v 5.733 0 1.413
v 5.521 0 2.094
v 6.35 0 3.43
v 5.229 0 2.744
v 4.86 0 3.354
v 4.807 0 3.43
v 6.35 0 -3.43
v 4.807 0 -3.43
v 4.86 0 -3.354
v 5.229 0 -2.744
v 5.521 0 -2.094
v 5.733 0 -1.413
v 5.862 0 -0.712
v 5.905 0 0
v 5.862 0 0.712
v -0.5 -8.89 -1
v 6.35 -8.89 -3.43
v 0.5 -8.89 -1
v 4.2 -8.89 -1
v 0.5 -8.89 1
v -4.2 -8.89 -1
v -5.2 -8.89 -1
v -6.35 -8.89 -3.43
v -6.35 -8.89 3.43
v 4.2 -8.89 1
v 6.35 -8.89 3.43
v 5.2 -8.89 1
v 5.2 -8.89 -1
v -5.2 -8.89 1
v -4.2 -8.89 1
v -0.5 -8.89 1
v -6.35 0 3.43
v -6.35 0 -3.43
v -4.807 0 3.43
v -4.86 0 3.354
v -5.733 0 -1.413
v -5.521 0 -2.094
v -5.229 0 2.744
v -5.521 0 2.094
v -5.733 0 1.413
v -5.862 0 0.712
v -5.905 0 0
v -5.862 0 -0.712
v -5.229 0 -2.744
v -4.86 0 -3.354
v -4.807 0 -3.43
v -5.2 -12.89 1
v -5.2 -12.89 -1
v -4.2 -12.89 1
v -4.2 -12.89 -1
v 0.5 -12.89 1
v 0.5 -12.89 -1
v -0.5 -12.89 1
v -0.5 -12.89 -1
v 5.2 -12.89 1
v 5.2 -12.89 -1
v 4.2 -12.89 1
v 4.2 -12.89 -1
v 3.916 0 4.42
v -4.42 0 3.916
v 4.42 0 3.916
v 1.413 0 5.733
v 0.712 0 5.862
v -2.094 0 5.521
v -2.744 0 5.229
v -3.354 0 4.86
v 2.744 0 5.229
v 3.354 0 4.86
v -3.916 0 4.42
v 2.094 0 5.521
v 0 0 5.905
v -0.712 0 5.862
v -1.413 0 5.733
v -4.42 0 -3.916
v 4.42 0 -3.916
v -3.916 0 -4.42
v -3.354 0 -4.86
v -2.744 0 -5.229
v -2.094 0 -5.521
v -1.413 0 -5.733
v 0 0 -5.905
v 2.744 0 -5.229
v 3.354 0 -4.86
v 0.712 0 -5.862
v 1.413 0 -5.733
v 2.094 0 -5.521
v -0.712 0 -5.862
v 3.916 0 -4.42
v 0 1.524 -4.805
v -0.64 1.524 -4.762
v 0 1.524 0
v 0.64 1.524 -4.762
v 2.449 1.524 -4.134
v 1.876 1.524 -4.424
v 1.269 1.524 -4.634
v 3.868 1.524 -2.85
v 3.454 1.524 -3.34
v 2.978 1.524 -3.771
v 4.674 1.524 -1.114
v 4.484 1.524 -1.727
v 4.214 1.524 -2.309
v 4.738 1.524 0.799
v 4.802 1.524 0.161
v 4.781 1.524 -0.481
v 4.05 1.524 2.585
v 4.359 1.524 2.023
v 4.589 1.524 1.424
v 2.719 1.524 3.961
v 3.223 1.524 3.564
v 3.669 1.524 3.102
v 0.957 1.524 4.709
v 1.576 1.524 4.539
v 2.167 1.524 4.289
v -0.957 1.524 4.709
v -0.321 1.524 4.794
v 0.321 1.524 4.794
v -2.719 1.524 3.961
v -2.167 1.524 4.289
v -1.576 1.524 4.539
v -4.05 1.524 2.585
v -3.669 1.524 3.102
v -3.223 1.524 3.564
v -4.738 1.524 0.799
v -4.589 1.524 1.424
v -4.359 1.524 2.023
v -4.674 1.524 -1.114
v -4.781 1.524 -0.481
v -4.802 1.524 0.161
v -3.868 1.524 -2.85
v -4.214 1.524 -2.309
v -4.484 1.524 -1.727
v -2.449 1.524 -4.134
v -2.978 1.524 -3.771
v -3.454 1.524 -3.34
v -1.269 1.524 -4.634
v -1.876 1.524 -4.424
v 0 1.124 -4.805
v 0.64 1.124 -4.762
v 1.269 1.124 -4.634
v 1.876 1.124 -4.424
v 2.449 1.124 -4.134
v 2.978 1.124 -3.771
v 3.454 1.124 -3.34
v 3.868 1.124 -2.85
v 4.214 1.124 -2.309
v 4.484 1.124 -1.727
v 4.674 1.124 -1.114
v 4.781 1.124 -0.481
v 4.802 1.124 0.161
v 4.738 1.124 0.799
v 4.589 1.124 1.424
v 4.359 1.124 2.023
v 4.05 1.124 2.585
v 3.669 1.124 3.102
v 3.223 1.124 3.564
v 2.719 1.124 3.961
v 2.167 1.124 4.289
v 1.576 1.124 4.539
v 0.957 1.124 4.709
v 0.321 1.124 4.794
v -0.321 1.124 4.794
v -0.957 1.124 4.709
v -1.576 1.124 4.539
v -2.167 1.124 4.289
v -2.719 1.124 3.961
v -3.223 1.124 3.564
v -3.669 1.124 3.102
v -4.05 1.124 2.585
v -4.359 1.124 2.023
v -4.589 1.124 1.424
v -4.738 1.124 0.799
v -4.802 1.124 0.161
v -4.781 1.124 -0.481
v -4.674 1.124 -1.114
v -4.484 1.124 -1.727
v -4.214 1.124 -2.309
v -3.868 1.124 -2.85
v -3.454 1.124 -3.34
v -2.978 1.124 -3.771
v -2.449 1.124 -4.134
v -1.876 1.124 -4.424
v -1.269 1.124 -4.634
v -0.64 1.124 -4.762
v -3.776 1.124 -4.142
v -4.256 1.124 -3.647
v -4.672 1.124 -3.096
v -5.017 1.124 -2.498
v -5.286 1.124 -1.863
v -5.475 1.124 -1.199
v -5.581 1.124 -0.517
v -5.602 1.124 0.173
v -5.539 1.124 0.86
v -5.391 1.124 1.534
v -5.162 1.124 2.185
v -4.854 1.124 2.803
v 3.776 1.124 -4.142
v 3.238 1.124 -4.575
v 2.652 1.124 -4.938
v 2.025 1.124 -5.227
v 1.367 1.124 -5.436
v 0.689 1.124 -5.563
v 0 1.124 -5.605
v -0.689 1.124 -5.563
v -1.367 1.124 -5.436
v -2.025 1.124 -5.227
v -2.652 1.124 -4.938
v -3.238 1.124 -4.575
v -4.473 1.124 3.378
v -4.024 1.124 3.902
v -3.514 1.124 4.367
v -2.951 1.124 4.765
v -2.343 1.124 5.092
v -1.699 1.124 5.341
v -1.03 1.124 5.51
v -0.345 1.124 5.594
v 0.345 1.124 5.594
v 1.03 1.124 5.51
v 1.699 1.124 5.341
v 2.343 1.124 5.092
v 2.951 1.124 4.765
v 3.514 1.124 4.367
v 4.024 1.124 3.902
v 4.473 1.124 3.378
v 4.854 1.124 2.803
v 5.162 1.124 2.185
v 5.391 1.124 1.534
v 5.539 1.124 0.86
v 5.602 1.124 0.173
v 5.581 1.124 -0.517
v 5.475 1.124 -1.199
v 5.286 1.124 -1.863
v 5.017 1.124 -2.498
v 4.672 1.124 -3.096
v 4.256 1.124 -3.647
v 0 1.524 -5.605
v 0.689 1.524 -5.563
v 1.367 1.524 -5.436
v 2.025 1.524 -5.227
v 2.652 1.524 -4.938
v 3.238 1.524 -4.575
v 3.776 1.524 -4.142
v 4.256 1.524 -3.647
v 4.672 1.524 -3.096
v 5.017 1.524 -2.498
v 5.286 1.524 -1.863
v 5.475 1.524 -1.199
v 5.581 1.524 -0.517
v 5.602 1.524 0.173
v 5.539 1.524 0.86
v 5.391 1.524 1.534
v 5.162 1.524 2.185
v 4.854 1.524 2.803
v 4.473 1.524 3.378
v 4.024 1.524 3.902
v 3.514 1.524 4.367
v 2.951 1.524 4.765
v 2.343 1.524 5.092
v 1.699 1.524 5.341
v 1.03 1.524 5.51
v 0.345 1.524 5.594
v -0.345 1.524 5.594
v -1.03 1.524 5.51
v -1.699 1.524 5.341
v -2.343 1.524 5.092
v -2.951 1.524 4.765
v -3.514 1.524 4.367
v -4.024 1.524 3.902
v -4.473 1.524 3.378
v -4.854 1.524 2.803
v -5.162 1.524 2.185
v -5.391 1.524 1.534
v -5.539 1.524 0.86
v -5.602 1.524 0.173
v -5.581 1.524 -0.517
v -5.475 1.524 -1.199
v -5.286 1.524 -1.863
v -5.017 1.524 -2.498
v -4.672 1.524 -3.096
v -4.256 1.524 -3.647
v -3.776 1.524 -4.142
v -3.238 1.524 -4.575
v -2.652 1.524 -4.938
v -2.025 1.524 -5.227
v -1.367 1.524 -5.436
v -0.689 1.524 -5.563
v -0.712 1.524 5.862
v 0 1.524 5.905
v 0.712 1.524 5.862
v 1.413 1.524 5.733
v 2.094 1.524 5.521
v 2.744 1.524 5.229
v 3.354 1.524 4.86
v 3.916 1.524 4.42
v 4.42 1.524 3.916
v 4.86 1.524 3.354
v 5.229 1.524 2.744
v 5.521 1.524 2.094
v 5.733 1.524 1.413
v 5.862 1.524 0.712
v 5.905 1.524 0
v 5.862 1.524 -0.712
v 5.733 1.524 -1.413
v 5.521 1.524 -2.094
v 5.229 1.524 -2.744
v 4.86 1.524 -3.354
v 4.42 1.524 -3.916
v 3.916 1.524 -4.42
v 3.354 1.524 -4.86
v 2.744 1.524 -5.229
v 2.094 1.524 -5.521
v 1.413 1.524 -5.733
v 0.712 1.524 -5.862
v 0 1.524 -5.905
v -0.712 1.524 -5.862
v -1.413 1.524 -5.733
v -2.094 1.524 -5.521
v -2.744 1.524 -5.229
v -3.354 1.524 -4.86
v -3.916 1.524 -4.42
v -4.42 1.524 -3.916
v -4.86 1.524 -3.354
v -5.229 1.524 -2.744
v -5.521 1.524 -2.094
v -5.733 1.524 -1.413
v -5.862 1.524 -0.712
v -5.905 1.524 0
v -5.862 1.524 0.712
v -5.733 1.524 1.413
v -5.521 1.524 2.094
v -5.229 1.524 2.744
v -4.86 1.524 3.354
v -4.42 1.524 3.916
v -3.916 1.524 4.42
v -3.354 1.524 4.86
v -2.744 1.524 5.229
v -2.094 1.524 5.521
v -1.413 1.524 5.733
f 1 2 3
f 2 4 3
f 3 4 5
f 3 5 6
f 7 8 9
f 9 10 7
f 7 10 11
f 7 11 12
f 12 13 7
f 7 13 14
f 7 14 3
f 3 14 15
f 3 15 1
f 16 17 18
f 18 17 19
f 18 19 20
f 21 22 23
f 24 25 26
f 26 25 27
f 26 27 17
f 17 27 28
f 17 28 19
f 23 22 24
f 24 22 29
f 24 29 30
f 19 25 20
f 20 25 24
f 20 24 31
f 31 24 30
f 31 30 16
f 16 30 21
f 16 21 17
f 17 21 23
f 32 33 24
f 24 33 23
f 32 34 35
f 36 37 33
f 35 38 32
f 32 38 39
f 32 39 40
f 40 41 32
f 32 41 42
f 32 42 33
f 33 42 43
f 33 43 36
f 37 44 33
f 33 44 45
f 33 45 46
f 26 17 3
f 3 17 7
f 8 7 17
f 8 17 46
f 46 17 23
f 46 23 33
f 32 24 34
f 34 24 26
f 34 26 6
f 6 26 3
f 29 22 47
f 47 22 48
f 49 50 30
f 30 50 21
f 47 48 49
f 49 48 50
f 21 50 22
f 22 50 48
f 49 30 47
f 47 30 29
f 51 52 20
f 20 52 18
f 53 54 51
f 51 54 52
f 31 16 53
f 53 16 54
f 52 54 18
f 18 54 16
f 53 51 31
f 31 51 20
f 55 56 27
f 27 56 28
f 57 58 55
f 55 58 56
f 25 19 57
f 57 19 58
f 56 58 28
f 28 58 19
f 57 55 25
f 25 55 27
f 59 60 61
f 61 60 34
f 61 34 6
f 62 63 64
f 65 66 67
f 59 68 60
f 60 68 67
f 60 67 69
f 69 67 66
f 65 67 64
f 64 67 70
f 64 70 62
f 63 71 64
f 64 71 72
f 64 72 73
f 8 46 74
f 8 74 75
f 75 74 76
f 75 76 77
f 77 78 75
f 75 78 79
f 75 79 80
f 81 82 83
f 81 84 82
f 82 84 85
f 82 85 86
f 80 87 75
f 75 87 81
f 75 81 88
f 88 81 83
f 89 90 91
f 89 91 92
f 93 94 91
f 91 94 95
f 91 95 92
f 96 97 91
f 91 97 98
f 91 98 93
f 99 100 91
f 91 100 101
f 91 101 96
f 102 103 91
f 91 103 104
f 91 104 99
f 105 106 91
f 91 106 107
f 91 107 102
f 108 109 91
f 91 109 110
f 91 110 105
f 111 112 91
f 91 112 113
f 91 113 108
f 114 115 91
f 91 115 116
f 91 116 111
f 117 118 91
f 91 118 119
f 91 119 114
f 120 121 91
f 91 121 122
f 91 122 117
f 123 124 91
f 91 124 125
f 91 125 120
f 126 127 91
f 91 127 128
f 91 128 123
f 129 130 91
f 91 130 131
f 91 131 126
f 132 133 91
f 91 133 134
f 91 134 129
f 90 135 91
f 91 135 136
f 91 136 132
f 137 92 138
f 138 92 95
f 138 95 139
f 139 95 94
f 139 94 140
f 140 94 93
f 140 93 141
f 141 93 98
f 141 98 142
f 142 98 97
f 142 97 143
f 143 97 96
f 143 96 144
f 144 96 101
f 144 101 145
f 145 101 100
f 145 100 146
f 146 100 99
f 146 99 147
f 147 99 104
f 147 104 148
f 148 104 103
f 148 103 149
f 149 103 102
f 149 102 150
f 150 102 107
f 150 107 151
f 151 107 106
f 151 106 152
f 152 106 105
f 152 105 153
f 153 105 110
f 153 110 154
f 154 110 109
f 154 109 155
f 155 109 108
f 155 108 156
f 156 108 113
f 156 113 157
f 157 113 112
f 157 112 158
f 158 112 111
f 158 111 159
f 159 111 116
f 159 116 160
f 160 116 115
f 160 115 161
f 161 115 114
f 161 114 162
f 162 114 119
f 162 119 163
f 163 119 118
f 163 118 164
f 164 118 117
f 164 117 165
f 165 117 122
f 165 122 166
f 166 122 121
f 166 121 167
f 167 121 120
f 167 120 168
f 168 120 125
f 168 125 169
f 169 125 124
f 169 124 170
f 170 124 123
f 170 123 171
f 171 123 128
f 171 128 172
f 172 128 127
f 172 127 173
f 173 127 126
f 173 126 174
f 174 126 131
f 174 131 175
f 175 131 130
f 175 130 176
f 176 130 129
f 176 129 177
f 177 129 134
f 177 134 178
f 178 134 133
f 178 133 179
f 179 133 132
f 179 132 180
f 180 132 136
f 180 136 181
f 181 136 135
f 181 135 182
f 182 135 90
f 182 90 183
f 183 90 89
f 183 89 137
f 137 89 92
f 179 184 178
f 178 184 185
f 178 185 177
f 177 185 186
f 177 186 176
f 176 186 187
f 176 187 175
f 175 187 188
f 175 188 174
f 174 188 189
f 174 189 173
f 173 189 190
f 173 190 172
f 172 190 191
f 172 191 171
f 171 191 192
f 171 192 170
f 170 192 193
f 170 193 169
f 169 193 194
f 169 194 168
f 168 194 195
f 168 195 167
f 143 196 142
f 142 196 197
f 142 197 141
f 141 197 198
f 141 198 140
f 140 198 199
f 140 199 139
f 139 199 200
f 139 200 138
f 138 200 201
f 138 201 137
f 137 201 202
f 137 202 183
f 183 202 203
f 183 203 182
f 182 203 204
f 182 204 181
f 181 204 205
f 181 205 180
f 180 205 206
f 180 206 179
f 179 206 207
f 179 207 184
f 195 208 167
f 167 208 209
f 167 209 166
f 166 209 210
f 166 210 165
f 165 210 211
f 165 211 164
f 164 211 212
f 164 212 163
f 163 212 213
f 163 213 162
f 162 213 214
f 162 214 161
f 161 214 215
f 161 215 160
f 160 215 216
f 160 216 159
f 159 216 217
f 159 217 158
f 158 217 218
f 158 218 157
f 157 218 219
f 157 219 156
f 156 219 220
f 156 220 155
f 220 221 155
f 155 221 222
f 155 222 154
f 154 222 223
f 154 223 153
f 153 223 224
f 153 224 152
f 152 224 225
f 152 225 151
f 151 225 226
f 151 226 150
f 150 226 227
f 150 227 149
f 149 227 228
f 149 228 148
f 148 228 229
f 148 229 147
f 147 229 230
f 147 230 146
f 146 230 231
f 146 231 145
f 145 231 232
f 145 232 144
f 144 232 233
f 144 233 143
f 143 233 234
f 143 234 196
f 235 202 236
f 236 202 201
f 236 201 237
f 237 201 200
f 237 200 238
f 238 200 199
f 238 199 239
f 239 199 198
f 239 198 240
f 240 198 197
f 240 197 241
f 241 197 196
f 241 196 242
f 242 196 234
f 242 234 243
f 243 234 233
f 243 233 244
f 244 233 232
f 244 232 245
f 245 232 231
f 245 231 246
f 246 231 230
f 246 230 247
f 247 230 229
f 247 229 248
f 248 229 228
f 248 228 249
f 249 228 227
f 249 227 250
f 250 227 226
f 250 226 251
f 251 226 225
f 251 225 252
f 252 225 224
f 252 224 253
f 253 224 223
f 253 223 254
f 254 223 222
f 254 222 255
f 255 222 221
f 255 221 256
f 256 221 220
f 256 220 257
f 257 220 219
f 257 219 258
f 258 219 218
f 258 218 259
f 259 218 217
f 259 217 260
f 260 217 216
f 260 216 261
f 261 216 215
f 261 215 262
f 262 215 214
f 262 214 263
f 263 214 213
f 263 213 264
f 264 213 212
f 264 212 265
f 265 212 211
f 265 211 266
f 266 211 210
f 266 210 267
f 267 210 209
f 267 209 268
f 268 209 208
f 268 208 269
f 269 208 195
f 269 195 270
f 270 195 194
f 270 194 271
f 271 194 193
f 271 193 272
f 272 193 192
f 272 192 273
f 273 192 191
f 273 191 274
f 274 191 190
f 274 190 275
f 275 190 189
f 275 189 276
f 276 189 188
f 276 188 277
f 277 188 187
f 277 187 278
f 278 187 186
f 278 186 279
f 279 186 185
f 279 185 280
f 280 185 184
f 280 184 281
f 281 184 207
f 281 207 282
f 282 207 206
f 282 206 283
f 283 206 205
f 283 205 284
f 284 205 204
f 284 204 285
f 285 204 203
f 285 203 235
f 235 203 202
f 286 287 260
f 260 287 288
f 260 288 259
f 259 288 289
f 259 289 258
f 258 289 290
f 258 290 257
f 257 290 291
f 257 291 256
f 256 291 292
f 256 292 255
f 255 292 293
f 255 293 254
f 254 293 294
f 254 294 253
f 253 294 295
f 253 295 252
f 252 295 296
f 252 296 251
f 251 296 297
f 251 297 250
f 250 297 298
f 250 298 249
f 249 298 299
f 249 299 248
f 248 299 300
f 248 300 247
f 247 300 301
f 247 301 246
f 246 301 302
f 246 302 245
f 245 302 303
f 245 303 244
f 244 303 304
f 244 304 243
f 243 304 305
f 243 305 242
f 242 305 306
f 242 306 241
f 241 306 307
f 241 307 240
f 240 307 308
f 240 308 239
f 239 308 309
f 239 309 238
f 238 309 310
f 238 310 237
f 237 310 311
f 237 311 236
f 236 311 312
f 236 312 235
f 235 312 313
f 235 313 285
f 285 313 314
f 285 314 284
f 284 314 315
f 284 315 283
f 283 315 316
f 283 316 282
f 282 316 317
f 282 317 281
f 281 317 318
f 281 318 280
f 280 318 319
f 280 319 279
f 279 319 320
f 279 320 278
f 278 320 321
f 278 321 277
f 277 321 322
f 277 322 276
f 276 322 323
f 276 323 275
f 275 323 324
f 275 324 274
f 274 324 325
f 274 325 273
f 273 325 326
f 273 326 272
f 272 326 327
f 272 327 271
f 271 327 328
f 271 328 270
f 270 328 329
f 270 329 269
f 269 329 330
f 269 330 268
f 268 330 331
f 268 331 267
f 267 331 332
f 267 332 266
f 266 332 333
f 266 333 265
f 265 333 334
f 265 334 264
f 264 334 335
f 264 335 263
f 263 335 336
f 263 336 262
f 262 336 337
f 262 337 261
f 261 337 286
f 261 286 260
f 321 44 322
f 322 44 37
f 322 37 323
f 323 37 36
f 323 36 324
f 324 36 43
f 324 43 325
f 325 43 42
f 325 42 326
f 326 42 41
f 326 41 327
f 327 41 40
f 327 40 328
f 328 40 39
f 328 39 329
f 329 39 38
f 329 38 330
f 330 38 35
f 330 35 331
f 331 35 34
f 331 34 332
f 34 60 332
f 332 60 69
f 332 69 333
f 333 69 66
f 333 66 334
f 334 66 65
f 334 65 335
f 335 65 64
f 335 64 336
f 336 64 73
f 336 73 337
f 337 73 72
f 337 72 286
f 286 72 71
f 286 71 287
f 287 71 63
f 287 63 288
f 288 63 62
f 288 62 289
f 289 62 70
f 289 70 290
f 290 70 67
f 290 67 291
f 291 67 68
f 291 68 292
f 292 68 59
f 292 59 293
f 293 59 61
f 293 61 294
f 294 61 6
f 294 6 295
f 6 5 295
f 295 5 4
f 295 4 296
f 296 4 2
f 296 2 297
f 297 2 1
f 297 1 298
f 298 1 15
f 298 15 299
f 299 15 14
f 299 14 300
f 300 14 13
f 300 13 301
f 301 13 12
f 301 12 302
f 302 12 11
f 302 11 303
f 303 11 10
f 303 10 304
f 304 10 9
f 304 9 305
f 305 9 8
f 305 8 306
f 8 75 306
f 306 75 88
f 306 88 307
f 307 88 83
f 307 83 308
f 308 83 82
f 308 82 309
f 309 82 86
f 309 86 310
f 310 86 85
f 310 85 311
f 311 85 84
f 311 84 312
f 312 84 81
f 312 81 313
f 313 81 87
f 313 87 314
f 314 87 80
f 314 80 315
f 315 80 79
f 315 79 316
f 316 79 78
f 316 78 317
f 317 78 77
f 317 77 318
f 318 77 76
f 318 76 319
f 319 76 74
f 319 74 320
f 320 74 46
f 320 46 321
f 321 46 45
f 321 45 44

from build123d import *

# Parameters (mm, degrees)
BOSS_EXTRUDE1_DEPTH      = 3.43
BOSS_EXTRUDE1_DEPTH_BACK = 3.43
SKETCH1_W                = 12.7
SKETCH1_H                = 8.89
BOSS_EXTRUDE2_DEPTH      = 1
BOSS_EXTRUDE2_DEPTH_BACK = 1
SKETCH2_W                = 1
SKETCH2_H                = 4


with BuildPart() as part:
    # Sketch1 → Boss-Extrude1 (new, two sides: drawn at the far end of the back side and taken through both)
    with BuildSketch(Plane.XY.offset(-BOSS_EXTRUDE1_DEPTH_BACK)):
        with Locations((0, -4.445)):
            Rectangle(SKETCH1_W, SKETCH1_H)
    extrude(amount=BOSS_EXTRUDE1_DEPTH + BOSS_EXTRUDE1_DEPTH_BACK)

    # Sketch2 → Boss-Extrude2 (add, two sides: drawn at the far end of the back side and taken through both)
    with BuildSketch(Plane.XY.offset(-BOSS_EXTRUDE2_DEPTH_BACK)):
        with Locations((-4.7, -10.89)):
            Rectangle(SKETCH2_W, SKETCH2_H)
        with Locations((0, -10.89)):
            Rectangle(SKETCH2_W, SKETCH2_H)
        with Locations((4.7, -10.89)):
            Rectangle(SKETCH2_W, SKETCH2_H)
    extrude(amount=BOSS_EXTRUDE2_DEPTH + BOSS_EXTRUDE2_DEPTH_BACK)

    # Sketch3 → Revolve1 (revolve)
    with BuildSketch(Plane.XY):
        Polygon((0, 0), (0, 1.524), (4.805, 1.524), (4.805, 1.124), (5.605, 1.124), (5.605, 1.524), (5.905, 1.524), (5.905, 0), align=None)
    revolve(axis=Axis((0, 0, 0), (0, 1, 0)))


solid = part.part
